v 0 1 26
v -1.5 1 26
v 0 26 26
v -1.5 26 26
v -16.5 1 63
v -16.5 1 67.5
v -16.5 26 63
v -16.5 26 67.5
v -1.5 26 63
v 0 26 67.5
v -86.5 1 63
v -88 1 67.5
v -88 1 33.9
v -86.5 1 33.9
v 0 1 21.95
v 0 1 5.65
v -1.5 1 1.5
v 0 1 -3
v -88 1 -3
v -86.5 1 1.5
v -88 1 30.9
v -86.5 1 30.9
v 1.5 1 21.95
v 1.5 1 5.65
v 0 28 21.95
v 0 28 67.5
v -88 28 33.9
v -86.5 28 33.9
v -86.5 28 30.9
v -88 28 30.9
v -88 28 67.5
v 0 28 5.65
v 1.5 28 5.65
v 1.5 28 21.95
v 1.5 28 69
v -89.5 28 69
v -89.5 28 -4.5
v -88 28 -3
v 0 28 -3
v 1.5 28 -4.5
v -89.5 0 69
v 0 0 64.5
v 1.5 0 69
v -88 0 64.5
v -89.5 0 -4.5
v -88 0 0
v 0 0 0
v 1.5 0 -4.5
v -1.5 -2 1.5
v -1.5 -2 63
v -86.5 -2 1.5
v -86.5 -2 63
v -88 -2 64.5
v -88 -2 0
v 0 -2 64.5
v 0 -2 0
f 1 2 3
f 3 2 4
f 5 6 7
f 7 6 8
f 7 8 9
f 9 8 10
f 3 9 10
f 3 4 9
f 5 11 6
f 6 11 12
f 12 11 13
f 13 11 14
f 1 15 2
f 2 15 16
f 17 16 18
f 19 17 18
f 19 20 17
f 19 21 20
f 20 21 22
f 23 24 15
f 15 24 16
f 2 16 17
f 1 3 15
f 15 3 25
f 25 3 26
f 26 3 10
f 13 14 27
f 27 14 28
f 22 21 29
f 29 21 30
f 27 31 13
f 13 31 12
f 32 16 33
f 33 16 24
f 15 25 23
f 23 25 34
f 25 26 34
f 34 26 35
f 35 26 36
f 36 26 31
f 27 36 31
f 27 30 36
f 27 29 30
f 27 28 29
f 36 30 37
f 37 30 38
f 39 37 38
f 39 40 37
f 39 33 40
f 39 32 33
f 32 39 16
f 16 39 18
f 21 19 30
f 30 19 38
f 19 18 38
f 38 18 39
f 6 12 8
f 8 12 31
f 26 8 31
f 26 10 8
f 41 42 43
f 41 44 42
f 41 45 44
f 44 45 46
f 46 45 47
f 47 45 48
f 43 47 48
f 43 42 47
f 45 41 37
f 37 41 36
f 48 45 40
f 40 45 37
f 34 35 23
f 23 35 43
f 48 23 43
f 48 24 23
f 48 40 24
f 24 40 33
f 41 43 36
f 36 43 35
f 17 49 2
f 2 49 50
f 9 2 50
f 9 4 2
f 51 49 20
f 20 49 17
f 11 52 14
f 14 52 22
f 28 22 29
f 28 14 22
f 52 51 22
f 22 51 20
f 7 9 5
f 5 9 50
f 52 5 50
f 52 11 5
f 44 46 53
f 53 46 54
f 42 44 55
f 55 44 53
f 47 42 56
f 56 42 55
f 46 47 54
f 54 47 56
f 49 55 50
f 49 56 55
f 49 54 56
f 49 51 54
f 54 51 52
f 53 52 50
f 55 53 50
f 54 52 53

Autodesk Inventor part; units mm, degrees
ref_plane "YZ Plane" through (0, 0, 0) normal (1, 0, 0) x (0, 1, 0)
ref_plane "XZ Plane" through (0, 0, 0) normal (0, 1, 0) x (-1, 0, 0)
ref_plane "XY Plane" through (0, 0, 0) normal (0, 0, 1) x (1, 0, 0)
sketch "Szkic1" plane through (0, 0, 0) normal (0, 1, 0) x (-1, 0, 0)
  line L0 (0, 0) -> (88, 0)
  line L1 (88, 0) -> (88, 64.5)
  line L2 (88, 64.5) -> (0, 64.5)
  line L3 (0, 64.5) -> (0, 0)
  line L4 (88, 64.5) -> (86.5, 64.5) construction
  line L5 (86.5, 64.5) -> (86.5, 63) construction
  line L6 (86.5, 63) -> (88, 63) construction
  line L7 (88, 63) -> (88, 64.5) construction
  line L8 (0, 0) -> (1.5, 0) construction
  line L9 (1.5, 0) -> (1.5, 1.5) construction
  line L10 (1.5, 1.5) -> (0, 1.5) construction
  line L11 (0, 1.5) -> (0, 0) construction
  line L12 (86.5, 63) -> (1.5, 63)
  line L13 (1.5, 63) -> (1.5, 1.5)
  line L14 (1.5, 1.5) -> (86.5, 1.5)
  line L15 (86.5, 1.5) -> (86.5, 63)
  dimension "d0" = 88
  dimension "d1" = 64.5
  dimension "d2" = 1.5
  dimension "d3" = 1.5
  dimension "d4" = 1.5
  dimension "d5" = 1.5
extrude "Wyciągnięcie proste1" add sketch "Szkic1" against normal blind 2
sketch "Szkic2" plane through (0, 0, 0) normal (0, 1, 0) x (1, 0, 0)
  line L0 (0, -64.5) -> (-88, -64.5) construction
  line L1 (0, -64.5) -> (1.5, -64.5) construction
  line L2 (1.5, -64.5) -> (1.5, -69) construction
  line L3 (1.5, -69) -> (0, -69) construction
  line L4 (0, -69) -> (0, -64.5) construction
  line L5 (-88, 0) -> (0, 0) construction
  line L6 (-88, 0) -> (-89.5, 0) construction
  line L7 (-89.5, 0) -> (-89.5, 4.5) construction
  line L8 (-89.5, 4.5) -> (-88, 4.5) construction
  line L9 (-88, 4.5) -> (-88, 0) construction
  line L10 (1.5, -69) -> (-89.5, -69)
  line L11 (-89.5, -69) -> (-89.5, 4.5)
  line L12 (-89.5, 4.5) -> (1.5, 4.5)
  line L13 (1.5, 4.5) -> (1.5, -69)
  line L14 (-86.5, -1.5) -> (-86.5, -63) projected
  line L15 (-1.5, -63) -> (-86.5, -63)
  line L16 (-86.5, -63) -> (-86.5, -1.5)
  line L17 (-86.5, -1.5) -> (-1.5, -1.5)
  line L18 (-1.5, -1.5) -> (-1.5, -63)
  dimension "d8" = 1.5
  dimension "d9" = 4.5
  dimension "d10" = 1.5
  dimension "d11" = 4.5
extrude "Wyciągnięcie proste2" add sketch "Szkic2" along normal blind 1
sketch "Szkic3" plane through (0, 1, 0) normal (0, 1, 0) x (1, 0, 0)
  line L0 (-89.5, -69) -> (1.5, -69) construction
  line L1 (1.5, -69) -> (0, -69) construction
  line L2 (0, -69) -> (0, -67.5) construction
  line L3 (0, -67.5) -> (1.5, -67.5) construction
  line L4 (1.5, -67.5) -> (1.5, -69) construction
  line L5 (-89.5, 4.5) -> (-89.5, -69) construction
  line L6 (-89.5, 4.5) -> (-88, 4.5) construction
  line L7 (-88, 4.5) -> (-88, 3) construction
  line L8 (-88, 3) -> (-89.5, 3) construction
  line L9 (-89.5, 3) -> (-89.5, 4.5) construction
  line L10 (0, -67.5) -> (-88, -67.5)
  line L11 (-88, -67.5) -> (-88, 3)
  line L12 (-88, 3) -> (0, 3)
  line L13 (0, 3) -> (0, -67.5)
  line L14 (1.5, 4.5) -> (-89.5, 4.5) projected
  line L15 (1.5, -69) -> (-89.5, -69)
  line L16 (-89.5, -69) -> (-89.5, 4.5)
  line L17 (-89.5, 4.5) -> (1.5, 4.5)
  line L18 (1.5, 4.5) -> (1.5, -69)
  point P0 (0, 0)
  dimension "d14" = 1.5
  dimension "d15" = 1.5
  dimension "d16" = 1.5
  dimension "d17" = 1.5
extrude "Wyciągnięcie proste3" add sketch "Szkic3" along normal blind 27
sketch "Szkic4" plane through (0, 1, -3) normal (-1, 0, 0) x (0, 0, 1)
  line L0 (72, -1) -> (67.5, -1) projected
  line L1 (67.5, -1) -> (3, -1) projected
  line L2 (3, -1) -> (-1.5, -1) projected
  line L3 (-1.5, -1) -> (-1.5, 27) projected
  line L4 (-1.5, 27) -> (0, 27) projected
  line L5 (0, 27) -> (70.5, 27) projected
  line L6 (70.5, 27) -> (72, 27) projected
  line L7 (72, 27) -> (72, -1) projected
  line L8 (67.5, -1) -> (67.5, -3) projected
  line L9 (67.5, -3) -> (3, -3) projected
  line L10 (3, -3) -> (3, -1) projected
  line L11 (0, 27) -> (0, 0) projected
  line L12 (0, 0) -> (70.5, 0) projected
  line L13 (70.5, 0) -> (70.5, 27) projected
  line L14 (72, -1) -> (67.5, -1) projected
  line L15 (67.5, -1) -> (3, -1) projected
  line L16 (3, -1) -> (-1.5, -1) projected
  line L17 (-1.5, -1) -> (-1.5, 27) projected
  line L18 (-1.5, 27) -> (0, 27) projected
  line L19 (0, 27) -> (70.5, 27) projected
  line L20 (70.5, 27) -> (72, 27) projected
  line L21 (72, 27) -> (72, -1) projected
  line L22 (67.5, -1) -> (67.5, -3) projected
  line L23 (67.5, -3) -> (3, -3) projected
  line L24 (3, -3) -> (3, -1) projected
  line L25 (0, 27) -> (0, 0) projected
  line L26 (0, 0) -> (70.5, 0) projected
  line L27 (70.5, 0) -> (70.5, 27) projected
  line L28 (0, 0) -> (8.65, 0) construction
  line L29 (70.5, 0) -> (0, 0) construction
  line L30 (8.65, 0) -> (24.95, 0) construction
  line L31 (8.65, 0) -> (24.95, 0)
  line L32 (24.95, 0) -> (24.95, 27)
  line L33 (24.95, 27) -> (8.65, 27)
  line L34 (8.65, 27) -> (8.65, 0)
  dimension "d20" = 8.65
  dimension "d21" = 16.3
extrude "Wyciągnięcie proste4" cut sketch "Szkic4" against normal blind 1.5 contours L32 L12 L34 L5
sketch "Szkic5" plane through (0, 1, 0) normal (0, 1, 0) x (1, 0, 0)
  line L0 (-88, 3) -> (-88, -67.5) construction
  line L1 (-88, 3) -> (-88, -30.9) construction
  line L2 (-88, -30.9) -> (-86.5, -30.9)
  line L3 (-86.5, -30.9) -> (-86.5, -33.9)
  line L4 (-86.5, -33.9) -> (-88, -33.9)
  line L5 (-88, -33.9) -> (-88, -30.9)
  point P0 (0, 0)
  dimension "d24" = 33.9
  dimension "d25" = 1.5
  dimension "d26" = 3
extrude "Wyciągnięcie proste5" add sketch "Szkic5" along normal blind 27
sketch "Szkic6" plane through (0, 1, 0) normal (0, 1, 0) x (1, 0, 0)
  line L0 (-1.5, -1.5) -> (-1.5, -63) construction
  line L1 (-1.5, -63) -> (-1.5, -26) construction
  line L2 (-1.5, -63) -> (-16.5, -63) construction
  line L3 (-1.5, -63) -> (-86.5, -63) construction
  line L4 (-1.5, -26) -> (-1.5, -63)
  line L5 (-16.5, -63) -> (-1.5, -63)
  line L6 (-16.5, -63) -> (-16.5, -67.5)
  line L7 (0, -67.5) -> (-88, -67.5) projected
  line L8 (-16.5, -67.5) -> (0, -67.5)
  line L9 (0, -67.5) -> (0, -26)
  line L10 (0, -21.95) -> (0, -67.5) projected
  line L11 (-1.5, -26) -> (0, -26)
  point P0 (0, 0)
  dimension "d29" = 37
  dimension "d30" = 15
extrude "Wyciągnięcie proste6" add sketch "Szkic6" along normal blind 25
properties part number "gora"
